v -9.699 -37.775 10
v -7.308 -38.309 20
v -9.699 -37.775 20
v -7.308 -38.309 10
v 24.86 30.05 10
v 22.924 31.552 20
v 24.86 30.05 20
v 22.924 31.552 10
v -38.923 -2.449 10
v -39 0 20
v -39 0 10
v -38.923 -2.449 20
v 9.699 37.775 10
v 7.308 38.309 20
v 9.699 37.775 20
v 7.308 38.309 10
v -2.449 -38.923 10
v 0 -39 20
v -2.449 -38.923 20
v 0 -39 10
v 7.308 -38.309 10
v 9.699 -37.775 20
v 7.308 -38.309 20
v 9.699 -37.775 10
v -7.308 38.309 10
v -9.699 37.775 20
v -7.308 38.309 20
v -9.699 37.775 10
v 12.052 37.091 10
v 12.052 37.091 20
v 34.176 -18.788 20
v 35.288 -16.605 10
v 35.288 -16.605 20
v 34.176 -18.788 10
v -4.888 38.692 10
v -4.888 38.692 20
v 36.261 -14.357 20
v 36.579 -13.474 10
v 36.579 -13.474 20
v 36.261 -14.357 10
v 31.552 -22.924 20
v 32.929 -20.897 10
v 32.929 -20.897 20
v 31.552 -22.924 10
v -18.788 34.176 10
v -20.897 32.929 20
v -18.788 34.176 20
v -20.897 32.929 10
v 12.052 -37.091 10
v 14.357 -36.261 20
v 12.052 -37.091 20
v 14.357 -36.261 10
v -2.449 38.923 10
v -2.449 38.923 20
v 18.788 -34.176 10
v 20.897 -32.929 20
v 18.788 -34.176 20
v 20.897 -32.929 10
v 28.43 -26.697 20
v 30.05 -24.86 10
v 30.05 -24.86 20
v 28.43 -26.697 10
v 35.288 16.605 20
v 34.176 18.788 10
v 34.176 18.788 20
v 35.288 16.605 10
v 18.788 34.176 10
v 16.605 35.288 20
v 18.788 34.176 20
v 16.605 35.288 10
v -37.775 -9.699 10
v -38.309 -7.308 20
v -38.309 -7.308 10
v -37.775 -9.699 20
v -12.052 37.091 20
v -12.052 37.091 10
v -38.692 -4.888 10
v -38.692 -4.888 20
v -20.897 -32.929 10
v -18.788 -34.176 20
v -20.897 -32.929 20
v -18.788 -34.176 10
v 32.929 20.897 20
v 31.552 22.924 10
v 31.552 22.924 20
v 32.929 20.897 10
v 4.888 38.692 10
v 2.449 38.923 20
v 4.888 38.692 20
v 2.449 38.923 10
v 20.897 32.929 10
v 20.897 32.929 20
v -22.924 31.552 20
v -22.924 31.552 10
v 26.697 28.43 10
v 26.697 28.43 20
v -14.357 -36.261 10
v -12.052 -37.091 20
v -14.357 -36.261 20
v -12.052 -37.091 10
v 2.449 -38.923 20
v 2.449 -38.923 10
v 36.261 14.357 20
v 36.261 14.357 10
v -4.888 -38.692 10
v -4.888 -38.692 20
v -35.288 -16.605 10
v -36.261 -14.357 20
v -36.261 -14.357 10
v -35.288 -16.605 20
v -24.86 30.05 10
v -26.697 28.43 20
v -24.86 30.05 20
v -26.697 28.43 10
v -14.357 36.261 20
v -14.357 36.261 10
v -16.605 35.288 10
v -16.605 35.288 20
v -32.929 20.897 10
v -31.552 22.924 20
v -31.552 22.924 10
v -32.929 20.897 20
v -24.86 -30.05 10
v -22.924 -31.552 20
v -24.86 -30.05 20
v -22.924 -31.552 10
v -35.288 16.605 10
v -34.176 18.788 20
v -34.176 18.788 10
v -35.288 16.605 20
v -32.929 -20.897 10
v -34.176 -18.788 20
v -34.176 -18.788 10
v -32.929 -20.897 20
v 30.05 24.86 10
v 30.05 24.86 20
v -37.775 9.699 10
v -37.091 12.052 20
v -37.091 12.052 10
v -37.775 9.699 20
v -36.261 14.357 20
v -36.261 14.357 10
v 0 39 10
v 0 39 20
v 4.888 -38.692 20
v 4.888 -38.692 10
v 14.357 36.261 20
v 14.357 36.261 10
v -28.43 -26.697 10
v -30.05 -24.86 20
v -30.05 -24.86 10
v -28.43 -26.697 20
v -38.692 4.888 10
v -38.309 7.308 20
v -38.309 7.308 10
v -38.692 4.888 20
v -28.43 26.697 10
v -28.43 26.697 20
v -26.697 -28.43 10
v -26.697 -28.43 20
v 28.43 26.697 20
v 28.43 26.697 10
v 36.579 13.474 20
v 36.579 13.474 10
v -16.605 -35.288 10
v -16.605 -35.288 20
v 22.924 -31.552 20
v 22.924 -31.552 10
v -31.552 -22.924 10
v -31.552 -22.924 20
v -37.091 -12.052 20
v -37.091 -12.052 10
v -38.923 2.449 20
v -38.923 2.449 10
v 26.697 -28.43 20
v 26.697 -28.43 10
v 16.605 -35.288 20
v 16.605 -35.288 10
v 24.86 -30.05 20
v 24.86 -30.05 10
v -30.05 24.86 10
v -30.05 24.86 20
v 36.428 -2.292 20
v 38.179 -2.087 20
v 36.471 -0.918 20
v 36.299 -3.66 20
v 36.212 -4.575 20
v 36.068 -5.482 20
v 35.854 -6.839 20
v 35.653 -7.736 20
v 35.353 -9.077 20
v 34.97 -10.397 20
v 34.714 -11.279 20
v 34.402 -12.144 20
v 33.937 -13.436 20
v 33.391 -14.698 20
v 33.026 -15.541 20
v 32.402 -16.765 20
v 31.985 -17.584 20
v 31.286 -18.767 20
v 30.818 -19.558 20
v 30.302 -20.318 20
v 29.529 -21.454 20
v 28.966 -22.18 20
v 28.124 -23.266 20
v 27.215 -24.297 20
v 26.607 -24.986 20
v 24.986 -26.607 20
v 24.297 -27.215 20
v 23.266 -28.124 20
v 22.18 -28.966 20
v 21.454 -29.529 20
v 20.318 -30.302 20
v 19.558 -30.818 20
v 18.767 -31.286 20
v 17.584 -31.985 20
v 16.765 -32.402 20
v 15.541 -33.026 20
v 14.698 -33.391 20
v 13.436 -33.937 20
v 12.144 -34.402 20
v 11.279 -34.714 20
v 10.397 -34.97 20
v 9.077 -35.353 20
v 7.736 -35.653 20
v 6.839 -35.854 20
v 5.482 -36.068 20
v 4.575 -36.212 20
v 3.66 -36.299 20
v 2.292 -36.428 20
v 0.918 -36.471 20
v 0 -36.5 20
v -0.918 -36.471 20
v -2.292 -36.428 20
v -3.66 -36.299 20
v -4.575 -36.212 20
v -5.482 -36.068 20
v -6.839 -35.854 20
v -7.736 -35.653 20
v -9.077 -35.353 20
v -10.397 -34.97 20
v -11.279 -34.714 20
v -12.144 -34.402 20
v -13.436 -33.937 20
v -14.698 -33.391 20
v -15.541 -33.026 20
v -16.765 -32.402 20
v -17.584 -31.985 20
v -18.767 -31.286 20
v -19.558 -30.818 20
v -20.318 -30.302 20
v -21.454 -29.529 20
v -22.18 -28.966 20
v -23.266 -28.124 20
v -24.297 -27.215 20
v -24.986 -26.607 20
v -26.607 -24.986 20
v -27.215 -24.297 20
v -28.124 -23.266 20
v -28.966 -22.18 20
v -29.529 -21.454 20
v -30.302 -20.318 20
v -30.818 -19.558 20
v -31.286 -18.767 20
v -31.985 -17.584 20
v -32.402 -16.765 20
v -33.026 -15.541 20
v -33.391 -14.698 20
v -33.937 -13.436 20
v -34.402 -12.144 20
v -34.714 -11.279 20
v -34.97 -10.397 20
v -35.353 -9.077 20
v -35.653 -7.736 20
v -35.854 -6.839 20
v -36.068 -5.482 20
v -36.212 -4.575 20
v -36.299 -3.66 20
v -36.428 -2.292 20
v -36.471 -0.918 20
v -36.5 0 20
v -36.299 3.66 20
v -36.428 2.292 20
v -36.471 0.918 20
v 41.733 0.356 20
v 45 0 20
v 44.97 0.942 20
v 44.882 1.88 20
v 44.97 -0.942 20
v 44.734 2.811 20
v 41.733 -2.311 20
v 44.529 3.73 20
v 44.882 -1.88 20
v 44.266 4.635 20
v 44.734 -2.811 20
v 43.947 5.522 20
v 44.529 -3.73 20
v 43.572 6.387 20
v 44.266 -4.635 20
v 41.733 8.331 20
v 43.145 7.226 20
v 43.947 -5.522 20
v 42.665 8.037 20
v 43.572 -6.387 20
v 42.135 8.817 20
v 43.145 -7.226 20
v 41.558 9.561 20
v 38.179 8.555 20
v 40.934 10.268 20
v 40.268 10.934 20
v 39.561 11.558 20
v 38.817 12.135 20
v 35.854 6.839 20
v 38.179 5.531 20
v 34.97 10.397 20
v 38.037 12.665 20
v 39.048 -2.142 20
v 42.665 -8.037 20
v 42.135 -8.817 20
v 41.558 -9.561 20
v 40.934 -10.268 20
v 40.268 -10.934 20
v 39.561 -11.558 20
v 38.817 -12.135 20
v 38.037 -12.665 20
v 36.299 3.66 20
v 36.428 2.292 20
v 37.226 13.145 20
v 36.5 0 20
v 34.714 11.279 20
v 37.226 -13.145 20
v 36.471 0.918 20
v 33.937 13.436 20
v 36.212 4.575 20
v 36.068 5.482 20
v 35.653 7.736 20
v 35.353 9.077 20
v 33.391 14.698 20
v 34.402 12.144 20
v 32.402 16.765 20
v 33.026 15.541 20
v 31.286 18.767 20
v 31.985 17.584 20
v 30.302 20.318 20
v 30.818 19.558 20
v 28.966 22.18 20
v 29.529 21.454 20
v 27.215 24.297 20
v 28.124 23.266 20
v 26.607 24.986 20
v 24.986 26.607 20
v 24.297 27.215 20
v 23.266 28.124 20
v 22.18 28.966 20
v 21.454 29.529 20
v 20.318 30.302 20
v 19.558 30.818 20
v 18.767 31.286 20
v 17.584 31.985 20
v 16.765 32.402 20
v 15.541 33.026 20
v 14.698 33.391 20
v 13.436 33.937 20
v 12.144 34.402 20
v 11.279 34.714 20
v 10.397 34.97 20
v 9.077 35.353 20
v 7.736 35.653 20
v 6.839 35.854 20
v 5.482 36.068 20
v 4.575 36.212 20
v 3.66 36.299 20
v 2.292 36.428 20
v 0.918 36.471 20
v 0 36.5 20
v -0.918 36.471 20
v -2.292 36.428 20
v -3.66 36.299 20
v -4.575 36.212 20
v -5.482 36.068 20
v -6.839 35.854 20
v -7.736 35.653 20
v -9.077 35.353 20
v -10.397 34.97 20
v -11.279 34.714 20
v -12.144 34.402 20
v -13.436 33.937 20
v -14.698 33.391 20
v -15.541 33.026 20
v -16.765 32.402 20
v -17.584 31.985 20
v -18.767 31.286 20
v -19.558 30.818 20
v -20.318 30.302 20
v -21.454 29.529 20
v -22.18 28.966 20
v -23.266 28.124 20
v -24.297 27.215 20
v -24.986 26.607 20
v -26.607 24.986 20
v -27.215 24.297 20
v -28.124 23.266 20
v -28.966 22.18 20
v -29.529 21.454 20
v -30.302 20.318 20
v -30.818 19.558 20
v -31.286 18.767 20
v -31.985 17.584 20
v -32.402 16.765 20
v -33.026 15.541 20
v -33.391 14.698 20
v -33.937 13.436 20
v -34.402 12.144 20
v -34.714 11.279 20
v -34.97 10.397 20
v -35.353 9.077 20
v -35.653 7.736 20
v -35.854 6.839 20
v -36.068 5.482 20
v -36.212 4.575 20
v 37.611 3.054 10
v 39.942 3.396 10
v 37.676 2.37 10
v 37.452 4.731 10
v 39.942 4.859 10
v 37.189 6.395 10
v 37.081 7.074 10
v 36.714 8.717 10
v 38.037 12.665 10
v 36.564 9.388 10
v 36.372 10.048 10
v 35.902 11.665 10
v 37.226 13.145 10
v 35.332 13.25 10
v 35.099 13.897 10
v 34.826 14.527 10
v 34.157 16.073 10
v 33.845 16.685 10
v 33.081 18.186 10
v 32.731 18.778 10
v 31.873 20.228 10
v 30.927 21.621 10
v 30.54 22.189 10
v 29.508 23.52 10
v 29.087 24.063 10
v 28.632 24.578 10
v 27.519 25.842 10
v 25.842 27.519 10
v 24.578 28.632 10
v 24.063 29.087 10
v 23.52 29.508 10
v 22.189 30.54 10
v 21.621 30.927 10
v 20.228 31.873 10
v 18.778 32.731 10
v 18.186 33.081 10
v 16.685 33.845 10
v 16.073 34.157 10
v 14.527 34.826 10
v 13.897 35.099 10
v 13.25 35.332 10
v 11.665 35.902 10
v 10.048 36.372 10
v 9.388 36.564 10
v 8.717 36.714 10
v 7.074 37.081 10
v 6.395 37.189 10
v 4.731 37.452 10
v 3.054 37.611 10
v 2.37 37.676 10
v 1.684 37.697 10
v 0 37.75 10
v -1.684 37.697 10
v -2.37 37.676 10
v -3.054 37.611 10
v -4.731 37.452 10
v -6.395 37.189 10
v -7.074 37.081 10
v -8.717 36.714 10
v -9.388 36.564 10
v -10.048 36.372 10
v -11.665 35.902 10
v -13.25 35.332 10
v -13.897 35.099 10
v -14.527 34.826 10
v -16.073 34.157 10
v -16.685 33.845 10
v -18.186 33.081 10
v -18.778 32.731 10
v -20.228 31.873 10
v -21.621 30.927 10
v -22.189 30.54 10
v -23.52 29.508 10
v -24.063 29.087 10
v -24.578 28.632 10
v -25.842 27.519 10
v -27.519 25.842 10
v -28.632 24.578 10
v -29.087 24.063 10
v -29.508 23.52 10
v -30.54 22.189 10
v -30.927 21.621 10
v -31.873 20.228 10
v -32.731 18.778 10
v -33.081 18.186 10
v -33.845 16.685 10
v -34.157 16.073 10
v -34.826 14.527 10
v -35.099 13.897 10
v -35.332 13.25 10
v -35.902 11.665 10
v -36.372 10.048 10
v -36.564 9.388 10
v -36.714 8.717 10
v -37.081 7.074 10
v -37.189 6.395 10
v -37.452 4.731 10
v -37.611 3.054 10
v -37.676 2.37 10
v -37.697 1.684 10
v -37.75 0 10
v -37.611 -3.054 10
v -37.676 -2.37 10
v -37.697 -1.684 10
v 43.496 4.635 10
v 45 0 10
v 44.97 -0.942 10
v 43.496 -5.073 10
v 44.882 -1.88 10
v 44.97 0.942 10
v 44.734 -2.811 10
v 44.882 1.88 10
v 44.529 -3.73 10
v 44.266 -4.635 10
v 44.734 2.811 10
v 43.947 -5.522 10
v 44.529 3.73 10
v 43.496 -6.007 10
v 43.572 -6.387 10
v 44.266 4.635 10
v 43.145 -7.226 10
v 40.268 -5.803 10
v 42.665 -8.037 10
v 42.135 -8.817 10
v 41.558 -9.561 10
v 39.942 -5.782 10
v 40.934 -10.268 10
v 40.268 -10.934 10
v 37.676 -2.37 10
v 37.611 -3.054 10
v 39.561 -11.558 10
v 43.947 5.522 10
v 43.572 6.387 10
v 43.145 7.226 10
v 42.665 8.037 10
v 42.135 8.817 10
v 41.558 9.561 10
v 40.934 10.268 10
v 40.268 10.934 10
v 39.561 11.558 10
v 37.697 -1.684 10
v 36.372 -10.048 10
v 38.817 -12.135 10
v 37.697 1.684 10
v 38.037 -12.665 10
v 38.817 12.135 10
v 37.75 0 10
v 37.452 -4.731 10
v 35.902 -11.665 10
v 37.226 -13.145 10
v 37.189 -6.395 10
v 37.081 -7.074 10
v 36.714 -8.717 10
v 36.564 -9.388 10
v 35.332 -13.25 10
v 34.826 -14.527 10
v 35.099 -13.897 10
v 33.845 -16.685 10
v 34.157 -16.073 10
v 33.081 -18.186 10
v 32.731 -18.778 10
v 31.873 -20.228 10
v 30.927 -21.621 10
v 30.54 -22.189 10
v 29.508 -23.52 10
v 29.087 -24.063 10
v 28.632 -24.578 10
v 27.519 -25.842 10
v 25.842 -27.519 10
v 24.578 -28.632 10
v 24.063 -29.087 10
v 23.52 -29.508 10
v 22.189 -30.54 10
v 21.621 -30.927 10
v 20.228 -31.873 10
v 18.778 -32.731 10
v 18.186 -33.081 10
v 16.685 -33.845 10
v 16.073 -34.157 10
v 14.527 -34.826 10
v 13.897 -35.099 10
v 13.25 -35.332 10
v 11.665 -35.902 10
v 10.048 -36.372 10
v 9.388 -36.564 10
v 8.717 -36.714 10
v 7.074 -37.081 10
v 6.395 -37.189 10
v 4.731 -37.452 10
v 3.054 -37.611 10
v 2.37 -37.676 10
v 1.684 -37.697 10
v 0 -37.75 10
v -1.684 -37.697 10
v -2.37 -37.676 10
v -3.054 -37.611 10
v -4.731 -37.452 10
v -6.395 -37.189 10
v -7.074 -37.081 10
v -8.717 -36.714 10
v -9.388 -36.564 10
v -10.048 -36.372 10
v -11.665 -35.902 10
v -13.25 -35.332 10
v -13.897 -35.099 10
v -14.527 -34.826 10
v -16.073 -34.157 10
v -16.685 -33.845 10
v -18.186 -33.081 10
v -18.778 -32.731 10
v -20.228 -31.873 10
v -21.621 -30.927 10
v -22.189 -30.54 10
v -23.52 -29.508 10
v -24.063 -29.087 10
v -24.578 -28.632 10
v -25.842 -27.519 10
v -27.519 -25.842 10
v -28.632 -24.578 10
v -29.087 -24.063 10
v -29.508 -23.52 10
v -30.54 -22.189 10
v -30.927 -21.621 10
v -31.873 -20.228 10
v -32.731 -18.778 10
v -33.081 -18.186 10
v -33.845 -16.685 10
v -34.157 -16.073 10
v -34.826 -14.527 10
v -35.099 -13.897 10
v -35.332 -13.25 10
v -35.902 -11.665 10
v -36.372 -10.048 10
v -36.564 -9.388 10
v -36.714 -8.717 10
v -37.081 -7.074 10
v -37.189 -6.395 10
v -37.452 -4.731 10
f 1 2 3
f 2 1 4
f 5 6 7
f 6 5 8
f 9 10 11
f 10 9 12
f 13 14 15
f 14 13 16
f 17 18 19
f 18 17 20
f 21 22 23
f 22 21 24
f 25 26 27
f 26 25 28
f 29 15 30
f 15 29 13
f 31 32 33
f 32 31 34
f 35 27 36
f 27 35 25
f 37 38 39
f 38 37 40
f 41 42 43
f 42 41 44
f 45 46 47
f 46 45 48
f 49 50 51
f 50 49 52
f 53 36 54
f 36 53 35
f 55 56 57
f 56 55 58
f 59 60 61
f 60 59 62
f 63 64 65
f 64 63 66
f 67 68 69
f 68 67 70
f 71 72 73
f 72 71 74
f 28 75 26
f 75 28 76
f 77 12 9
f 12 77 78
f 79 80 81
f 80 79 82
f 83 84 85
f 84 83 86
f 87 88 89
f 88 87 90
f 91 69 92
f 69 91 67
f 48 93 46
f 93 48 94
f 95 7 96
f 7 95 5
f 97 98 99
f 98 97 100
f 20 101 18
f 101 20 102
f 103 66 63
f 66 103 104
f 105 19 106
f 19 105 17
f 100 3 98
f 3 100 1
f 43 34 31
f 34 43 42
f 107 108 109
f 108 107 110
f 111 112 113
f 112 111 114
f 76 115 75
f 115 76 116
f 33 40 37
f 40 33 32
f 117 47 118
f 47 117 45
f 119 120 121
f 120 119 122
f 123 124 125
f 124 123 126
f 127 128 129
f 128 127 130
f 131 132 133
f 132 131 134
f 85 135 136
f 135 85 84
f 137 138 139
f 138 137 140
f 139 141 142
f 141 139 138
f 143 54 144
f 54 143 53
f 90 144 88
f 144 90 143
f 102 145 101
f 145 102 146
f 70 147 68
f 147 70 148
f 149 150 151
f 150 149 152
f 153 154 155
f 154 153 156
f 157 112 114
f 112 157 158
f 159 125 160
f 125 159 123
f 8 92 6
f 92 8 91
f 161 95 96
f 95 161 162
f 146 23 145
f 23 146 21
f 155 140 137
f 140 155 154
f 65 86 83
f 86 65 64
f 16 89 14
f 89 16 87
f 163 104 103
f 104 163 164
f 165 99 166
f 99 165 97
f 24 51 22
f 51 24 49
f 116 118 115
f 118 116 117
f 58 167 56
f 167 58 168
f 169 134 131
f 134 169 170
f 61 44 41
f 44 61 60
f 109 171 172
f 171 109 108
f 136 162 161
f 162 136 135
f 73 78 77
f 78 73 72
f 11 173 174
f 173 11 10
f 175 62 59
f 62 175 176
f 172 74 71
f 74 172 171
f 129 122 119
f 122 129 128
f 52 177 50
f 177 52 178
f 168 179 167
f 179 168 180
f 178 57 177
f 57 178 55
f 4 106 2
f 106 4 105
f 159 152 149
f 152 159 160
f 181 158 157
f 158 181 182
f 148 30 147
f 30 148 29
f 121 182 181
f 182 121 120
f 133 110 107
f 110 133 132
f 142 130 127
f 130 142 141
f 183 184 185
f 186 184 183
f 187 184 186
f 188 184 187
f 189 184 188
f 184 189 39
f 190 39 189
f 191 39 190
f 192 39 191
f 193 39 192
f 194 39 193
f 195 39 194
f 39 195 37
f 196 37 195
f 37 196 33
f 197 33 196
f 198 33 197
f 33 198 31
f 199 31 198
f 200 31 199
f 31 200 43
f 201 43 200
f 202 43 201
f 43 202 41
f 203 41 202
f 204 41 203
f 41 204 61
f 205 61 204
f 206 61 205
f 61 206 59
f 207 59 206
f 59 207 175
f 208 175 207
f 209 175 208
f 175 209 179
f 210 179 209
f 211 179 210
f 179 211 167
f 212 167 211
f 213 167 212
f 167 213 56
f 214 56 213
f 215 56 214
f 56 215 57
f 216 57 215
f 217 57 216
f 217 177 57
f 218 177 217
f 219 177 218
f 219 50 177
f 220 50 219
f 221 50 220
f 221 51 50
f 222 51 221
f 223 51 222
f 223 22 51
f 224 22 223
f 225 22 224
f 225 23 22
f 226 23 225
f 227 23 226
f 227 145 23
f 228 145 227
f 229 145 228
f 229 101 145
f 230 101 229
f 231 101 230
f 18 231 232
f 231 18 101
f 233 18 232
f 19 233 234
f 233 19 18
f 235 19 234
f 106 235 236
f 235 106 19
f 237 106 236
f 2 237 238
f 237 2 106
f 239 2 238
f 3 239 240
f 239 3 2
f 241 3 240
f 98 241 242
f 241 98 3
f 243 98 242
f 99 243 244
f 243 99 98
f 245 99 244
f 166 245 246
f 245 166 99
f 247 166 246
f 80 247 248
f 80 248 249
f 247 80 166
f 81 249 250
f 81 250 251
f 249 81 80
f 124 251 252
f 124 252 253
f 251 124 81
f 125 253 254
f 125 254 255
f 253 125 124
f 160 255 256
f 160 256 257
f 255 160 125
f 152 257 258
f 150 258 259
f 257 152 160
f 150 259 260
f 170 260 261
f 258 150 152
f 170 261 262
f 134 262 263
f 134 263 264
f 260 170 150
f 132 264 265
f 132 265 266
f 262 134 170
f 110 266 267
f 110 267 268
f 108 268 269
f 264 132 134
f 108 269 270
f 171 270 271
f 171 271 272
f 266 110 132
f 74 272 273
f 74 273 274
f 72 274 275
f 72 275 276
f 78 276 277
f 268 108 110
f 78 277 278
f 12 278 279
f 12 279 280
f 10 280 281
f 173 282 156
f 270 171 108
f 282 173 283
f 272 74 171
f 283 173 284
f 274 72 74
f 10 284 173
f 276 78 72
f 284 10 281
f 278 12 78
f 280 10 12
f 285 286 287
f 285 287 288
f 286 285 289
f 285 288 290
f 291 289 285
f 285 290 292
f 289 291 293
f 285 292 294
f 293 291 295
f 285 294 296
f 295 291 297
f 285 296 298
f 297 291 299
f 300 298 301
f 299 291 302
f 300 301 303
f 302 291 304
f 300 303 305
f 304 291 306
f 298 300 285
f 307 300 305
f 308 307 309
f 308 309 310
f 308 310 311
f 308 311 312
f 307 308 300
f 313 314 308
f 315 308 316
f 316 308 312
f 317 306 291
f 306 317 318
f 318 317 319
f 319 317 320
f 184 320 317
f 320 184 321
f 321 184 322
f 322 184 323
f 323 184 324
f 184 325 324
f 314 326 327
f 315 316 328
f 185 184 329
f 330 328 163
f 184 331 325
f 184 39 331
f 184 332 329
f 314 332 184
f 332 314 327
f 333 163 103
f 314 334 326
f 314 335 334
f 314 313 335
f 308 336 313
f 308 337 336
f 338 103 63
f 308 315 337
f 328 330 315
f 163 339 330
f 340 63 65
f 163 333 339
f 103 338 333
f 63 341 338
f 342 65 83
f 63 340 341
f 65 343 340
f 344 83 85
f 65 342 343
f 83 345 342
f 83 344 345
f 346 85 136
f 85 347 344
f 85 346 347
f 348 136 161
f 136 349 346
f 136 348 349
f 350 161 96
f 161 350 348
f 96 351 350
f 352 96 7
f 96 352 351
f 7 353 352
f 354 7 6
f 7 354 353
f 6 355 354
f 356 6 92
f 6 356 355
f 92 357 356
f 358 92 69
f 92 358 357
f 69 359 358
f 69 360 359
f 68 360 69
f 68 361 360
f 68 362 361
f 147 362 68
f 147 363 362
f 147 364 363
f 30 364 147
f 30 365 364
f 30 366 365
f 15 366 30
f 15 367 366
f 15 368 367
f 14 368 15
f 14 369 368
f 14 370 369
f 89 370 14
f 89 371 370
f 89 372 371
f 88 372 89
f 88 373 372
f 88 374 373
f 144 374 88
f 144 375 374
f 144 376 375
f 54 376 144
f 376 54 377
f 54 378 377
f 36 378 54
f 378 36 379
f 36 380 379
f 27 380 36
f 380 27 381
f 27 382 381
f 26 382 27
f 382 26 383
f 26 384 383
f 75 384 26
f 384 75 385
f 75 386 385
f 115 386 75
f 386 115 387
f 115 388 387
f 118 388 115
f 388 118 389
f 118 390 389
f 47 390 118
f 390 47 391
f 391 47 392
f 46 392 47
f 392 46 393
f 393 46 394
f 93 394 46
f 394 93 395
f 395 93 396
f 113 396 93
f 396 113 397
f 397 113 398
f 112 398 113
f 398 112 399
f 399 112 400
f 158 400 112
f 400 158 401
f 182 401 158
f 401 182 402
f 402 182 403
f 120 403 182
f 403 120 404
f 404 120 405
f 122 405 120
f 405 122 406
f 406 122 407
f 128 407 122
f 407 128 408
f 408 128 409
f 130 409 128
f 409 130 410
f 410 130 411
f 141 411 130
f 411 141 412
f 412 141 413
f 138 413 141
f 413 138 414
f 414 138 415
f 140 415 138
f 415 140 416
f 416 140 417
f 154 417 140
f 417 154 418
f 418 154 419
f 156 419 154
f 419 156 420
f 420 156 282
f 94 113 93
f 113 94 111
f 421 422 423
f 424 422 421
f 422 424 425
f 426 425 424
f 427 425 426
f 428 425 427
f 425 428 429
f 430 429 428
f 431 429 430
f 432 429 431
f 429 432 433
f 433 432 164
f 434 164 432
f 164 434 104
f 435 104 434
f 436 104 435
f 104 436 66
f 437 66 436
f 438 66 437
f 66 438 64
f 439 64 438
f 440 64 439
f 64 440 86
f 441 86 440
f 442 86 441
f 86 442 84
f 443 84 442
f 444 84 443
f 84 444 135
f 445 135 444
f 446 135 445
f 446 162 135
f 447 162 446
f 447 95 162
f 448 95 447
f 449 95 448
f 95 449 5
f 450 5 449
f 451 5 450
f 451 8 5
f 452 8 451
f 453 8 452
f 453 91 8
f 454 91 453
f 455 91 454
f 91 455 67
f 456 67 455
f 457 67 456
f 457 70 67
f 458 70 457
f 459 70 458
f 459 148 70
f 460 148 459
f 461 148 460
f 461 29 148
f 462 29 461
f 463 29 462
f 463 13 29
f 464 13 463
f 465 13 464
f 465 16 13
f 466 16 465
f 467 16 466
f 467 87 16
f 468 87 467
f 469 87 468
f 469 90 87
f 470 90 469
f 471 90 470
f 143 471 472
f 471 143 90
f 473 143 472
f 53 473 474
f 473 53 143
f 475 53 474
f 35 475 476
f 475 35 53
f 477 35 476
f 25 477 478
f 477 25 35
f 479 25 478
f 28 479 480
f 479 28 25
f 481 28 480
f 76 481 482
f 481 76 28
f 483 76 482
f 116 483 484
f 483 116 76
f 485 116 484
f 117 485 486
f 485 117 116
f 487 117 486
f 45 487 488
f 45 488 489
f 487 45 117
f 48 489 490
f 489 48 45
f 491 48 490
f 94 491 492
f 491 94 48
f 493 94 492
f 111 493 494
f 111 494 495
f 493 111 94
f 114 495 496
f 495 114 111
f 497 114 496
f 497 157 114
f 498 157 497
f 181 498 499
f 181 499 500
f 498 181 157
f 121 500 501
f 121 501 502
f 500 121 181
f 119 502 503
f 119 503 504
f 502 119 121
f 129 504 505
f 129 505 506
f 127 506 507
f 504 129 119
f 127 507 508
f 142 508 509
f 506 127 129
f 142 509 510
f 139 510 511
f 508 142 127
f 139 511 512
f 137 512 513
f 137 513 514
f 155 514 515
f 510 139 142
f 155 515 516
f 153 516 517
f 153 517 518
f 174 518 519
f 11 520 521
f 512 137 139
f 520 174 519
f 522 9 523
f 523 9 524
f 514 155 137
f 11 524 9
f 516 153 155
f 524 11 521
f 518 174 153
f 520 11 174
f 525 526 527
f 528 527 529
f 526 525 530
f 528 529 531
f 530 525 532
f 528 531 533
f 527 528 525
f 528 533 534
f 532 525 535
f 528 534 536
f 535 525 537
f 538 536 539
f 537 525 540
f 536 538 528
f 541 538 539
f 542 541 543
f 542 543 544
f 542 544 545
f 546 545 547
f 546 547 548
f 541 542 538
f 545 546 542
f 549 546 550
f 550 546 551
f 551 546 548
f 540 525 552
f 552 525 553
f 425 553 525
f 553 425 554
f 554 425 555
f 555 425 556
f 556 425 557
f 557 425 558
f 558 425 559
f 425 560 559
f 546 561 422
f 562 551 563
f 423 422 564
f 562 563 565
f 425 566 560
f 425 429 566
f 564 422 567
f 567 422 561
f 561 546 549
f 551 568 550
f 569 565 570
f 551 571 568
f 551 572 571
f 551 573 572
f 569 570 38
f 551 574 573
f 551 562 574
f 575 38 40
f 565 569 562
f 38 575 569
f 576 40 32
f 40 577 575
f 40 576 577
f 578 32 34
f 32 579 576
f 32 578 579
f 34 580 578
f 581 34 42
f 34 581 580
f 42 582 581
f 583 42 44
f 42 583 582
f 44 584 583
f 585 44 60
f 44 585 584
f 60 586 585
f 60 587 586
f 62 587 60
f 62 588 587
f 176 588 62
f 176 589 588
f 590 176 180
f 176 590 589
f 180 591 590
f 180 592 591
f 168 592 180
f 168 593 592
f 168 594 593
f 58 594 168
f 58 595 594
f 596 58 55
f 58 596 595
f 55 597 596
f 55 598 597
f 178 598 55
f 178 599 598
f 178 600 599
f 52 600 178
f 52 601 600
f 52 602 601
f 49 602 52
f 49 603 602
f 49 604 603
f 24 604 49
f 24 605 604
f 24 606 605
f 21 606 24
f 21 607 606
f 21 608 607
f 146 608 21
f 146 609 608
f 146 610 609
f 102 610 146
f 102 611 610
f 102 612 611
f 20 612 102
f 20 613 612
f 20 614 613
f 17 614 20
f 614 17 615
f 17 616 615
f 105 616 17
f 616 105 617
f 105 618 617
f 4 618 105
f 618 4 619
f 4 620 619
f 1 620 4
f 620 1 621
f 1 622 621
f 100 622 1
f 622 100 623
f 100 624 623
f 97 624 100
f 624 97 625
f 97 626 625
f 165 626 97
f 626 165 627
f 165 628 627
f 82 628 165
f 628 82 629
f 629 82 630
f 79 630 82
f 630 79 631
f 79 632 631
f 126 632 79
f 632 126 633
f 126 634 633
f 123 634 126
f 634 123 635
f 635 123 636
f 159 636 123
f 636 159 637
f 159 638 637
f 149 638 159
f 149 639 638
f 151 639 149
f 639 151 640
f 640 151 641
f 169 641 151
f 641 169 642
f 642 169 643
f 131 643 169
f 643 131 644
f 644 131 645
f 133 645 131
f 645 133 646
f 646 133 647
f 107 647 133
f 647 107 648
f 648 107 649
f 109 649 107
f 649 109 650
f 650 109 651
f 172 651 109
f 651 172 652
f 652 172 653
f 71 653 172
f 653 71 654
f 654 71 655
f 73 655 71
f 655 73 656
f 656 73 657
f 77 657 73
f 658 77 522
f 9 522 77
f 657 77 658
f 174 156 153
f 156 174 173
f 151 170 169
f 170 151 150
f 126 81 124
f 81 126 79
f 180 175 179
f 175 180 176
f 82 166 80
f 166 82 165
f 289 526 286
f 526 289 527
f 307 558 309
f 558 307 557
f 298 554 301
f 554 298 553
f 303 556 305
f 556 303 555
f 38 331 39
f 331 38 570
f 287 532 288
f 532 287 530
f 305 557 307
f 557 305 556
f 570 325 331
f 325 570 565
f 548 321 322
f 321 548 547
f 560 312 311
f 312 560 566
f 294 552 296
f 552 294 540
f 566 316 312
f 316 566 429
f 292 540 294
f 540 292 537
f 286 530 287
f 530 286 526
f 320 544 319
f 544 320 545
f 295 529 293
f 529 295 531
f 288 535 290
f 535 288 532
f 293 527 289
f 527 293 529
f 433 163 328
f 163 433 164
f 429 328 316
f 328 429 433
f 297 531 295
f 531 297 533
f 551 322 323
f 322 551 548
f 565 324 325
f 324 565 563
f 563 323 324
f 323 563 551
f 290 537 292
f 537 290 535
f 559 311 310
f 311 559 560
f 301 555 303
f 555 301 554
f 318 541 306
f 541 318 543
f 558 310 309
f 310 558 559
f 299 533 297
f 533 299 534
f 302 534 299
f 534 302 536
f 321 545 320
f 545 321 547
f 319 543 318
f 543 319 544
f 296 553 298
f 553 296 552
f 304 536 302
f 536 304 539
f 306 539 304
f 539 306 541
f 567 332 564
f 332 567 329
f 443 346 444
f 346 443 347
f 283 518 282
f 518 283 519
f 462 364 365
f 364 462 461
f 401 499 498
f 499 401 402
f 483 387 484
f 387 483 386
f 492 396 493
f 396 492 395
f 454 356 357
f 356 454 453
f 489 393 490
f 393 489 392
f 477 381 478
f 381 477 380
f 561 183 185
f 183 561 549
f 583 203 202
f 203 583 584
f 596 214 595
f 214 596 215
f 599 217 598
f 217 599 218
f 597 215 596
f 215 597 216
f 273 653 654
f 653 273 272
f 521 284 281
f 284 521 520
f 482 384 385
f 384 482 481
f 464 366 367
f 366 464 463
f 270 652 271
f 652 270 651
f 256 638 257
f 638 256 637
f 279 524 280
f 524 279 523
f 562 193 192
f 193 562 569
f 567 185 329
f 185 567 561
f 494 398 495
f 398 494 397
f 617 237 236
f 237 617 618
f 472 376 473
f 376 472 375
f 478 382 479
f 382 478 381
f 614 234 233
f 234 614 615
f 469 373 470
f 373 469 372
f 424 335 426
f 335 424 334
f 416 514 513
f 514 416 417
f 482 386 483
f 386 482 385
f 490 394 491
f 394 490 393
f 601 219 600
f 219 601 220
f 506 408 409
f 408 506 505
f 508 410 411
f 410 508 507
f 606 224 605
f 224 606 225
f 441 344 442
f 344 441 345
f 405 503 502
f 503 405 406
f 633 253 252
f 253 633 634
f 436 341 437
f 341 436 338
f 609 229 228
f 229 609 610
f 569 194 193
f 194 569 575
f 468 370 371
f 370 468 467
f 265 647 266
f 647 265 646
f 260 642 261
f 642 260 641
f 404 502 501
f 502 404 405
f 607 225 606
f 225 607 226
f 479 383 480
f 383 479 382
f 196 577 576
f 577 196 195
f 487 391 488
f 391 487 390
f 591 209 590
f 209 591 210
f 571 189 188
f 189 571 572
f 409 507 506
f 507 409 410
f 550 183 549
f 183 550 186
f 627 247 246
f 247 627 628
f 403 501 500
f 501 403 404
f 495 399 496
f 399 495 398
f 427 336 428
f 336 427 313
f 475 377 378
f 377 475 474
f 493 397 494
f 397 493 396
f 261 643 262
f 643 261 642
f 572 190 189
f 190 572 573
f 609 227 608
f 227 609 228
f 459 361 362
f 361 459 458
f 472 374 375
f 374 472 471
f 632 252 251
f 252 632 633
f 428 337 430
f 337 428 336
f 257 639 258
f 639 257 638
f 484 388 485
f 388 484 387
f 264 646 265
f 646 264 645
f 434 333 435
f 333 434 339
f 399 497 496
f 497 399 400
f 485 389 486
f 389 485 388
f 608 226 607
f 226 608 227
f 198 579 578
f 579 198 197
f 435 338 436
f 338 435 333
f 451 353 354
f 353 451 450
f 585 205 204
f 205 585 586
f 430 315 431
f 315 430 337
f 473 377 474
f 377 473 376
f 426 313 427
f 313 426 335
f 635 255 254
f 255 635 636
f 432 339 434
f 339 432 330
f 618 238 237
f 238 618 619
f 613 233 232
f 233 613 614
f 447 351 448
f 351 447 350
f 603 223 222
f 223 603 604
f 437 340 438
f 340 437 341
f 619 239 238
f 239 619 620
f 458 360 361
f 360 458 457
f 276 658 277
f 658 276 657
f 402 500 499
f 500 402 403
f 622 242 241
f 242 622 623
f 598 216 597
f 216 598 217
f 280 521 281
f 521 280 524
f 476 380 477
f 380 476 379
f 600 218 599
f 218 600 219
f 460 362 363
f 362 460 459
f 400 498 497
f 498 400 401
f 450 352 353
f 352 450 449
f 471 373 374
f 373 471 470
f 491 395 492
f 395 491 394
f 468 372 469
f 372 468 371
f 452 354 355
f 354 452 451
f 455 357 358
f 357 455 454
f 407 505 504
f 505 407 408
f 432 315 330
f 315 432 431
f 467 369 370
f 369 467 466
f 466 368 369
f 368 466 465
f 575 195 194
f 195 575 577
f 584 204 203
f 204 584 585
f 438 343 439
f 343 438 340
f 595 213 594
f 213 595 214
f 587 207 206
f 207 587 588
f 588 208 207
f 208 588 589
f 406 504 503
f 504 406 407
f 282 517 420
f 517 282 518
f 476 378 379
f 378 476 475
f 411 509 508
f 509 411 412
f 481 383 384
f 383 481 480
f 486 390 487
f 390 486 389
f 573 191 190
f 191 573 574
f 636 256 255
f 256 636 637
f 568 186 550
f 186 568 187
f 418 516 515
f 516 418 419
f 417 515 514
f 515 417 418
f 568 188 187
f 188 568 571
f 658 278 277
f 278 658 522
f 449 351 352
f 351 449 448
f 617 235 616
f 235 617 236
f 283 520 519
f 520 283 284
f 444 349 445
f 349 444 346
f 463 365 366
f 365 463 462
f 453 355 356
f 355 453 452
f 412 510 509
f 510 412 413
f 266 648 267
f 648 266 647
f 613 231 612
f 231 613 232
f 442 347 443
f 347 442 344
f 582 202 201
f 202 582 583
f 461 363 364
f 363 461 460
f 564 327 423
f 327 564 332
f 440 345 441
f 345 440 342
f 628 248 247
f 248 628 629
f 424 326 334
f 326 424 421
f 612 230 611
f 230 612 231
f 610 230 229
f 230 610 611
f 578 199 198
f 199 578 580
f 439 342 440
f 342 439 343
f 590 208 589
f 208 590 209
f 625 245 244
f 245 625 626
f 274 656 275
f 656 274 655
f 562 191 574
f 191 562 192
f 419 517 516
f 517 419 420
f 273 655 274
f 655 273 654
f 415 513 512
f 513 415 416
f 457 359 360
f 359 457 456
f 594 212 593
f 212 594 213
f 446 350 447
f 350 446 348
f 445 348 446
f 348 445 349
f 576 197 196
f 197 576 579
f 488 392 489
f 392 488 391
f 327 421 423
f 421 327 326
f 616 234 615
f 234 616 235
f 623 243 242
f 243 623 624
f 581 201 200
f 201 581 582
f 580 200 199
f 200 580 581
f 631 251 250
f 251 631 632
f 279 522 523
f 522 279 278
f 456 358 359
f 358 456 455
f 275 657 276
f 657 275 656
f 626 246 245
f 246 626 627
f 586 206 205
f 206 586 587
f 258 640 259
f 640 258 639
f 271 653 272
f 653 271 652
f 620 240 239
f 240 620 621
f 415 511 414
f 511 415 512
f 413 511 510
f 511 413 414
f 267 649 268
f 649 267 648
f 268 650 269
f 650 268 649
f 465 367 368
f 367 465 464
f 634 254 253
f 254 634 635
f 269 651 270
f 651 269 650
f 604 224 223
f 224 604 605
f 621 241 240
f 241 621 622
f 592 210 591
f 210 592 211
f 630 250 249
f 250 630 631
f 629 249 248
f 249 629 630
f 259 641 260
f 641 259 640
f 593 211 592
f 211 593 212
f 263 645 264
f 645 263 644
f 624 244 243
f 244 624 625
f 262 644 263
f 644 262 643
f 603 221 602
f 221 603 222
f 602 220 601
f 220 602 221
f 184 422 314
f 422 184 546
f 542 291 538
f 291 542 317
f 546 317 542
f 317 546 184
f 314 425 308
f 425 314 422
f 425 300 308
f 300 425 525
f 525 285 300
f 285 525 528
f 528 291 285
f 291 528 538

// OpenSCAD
//
// ktRACK8
//
//


gap1 = 0.001;
gap2 = 0.002;

panel_thick = 2;


//translate([0, 0, 32]) cylinder(23.5, d1=67.5, d2=64, $fn=100);
//translate([0, 0, 0]) cylinder(32, d1=76, d2=67.5, $fn=100);



difference()
{
    union()
    {
        translate([0, 0, 10]) cylinder(10, d=76+panel_thick, $fn=100);
        translate([30, 0, 10]) cylinder(10, d=30, $fn=100);
    }
    translate([0, 0, 0]) cylinder(32, d1=76+2, d2=67.5+2.5, $fn=100);
    #translate([41, -8, 4]) rotate([-20, -10, 0]) cube([2.5+1, 10, 70]);
}
